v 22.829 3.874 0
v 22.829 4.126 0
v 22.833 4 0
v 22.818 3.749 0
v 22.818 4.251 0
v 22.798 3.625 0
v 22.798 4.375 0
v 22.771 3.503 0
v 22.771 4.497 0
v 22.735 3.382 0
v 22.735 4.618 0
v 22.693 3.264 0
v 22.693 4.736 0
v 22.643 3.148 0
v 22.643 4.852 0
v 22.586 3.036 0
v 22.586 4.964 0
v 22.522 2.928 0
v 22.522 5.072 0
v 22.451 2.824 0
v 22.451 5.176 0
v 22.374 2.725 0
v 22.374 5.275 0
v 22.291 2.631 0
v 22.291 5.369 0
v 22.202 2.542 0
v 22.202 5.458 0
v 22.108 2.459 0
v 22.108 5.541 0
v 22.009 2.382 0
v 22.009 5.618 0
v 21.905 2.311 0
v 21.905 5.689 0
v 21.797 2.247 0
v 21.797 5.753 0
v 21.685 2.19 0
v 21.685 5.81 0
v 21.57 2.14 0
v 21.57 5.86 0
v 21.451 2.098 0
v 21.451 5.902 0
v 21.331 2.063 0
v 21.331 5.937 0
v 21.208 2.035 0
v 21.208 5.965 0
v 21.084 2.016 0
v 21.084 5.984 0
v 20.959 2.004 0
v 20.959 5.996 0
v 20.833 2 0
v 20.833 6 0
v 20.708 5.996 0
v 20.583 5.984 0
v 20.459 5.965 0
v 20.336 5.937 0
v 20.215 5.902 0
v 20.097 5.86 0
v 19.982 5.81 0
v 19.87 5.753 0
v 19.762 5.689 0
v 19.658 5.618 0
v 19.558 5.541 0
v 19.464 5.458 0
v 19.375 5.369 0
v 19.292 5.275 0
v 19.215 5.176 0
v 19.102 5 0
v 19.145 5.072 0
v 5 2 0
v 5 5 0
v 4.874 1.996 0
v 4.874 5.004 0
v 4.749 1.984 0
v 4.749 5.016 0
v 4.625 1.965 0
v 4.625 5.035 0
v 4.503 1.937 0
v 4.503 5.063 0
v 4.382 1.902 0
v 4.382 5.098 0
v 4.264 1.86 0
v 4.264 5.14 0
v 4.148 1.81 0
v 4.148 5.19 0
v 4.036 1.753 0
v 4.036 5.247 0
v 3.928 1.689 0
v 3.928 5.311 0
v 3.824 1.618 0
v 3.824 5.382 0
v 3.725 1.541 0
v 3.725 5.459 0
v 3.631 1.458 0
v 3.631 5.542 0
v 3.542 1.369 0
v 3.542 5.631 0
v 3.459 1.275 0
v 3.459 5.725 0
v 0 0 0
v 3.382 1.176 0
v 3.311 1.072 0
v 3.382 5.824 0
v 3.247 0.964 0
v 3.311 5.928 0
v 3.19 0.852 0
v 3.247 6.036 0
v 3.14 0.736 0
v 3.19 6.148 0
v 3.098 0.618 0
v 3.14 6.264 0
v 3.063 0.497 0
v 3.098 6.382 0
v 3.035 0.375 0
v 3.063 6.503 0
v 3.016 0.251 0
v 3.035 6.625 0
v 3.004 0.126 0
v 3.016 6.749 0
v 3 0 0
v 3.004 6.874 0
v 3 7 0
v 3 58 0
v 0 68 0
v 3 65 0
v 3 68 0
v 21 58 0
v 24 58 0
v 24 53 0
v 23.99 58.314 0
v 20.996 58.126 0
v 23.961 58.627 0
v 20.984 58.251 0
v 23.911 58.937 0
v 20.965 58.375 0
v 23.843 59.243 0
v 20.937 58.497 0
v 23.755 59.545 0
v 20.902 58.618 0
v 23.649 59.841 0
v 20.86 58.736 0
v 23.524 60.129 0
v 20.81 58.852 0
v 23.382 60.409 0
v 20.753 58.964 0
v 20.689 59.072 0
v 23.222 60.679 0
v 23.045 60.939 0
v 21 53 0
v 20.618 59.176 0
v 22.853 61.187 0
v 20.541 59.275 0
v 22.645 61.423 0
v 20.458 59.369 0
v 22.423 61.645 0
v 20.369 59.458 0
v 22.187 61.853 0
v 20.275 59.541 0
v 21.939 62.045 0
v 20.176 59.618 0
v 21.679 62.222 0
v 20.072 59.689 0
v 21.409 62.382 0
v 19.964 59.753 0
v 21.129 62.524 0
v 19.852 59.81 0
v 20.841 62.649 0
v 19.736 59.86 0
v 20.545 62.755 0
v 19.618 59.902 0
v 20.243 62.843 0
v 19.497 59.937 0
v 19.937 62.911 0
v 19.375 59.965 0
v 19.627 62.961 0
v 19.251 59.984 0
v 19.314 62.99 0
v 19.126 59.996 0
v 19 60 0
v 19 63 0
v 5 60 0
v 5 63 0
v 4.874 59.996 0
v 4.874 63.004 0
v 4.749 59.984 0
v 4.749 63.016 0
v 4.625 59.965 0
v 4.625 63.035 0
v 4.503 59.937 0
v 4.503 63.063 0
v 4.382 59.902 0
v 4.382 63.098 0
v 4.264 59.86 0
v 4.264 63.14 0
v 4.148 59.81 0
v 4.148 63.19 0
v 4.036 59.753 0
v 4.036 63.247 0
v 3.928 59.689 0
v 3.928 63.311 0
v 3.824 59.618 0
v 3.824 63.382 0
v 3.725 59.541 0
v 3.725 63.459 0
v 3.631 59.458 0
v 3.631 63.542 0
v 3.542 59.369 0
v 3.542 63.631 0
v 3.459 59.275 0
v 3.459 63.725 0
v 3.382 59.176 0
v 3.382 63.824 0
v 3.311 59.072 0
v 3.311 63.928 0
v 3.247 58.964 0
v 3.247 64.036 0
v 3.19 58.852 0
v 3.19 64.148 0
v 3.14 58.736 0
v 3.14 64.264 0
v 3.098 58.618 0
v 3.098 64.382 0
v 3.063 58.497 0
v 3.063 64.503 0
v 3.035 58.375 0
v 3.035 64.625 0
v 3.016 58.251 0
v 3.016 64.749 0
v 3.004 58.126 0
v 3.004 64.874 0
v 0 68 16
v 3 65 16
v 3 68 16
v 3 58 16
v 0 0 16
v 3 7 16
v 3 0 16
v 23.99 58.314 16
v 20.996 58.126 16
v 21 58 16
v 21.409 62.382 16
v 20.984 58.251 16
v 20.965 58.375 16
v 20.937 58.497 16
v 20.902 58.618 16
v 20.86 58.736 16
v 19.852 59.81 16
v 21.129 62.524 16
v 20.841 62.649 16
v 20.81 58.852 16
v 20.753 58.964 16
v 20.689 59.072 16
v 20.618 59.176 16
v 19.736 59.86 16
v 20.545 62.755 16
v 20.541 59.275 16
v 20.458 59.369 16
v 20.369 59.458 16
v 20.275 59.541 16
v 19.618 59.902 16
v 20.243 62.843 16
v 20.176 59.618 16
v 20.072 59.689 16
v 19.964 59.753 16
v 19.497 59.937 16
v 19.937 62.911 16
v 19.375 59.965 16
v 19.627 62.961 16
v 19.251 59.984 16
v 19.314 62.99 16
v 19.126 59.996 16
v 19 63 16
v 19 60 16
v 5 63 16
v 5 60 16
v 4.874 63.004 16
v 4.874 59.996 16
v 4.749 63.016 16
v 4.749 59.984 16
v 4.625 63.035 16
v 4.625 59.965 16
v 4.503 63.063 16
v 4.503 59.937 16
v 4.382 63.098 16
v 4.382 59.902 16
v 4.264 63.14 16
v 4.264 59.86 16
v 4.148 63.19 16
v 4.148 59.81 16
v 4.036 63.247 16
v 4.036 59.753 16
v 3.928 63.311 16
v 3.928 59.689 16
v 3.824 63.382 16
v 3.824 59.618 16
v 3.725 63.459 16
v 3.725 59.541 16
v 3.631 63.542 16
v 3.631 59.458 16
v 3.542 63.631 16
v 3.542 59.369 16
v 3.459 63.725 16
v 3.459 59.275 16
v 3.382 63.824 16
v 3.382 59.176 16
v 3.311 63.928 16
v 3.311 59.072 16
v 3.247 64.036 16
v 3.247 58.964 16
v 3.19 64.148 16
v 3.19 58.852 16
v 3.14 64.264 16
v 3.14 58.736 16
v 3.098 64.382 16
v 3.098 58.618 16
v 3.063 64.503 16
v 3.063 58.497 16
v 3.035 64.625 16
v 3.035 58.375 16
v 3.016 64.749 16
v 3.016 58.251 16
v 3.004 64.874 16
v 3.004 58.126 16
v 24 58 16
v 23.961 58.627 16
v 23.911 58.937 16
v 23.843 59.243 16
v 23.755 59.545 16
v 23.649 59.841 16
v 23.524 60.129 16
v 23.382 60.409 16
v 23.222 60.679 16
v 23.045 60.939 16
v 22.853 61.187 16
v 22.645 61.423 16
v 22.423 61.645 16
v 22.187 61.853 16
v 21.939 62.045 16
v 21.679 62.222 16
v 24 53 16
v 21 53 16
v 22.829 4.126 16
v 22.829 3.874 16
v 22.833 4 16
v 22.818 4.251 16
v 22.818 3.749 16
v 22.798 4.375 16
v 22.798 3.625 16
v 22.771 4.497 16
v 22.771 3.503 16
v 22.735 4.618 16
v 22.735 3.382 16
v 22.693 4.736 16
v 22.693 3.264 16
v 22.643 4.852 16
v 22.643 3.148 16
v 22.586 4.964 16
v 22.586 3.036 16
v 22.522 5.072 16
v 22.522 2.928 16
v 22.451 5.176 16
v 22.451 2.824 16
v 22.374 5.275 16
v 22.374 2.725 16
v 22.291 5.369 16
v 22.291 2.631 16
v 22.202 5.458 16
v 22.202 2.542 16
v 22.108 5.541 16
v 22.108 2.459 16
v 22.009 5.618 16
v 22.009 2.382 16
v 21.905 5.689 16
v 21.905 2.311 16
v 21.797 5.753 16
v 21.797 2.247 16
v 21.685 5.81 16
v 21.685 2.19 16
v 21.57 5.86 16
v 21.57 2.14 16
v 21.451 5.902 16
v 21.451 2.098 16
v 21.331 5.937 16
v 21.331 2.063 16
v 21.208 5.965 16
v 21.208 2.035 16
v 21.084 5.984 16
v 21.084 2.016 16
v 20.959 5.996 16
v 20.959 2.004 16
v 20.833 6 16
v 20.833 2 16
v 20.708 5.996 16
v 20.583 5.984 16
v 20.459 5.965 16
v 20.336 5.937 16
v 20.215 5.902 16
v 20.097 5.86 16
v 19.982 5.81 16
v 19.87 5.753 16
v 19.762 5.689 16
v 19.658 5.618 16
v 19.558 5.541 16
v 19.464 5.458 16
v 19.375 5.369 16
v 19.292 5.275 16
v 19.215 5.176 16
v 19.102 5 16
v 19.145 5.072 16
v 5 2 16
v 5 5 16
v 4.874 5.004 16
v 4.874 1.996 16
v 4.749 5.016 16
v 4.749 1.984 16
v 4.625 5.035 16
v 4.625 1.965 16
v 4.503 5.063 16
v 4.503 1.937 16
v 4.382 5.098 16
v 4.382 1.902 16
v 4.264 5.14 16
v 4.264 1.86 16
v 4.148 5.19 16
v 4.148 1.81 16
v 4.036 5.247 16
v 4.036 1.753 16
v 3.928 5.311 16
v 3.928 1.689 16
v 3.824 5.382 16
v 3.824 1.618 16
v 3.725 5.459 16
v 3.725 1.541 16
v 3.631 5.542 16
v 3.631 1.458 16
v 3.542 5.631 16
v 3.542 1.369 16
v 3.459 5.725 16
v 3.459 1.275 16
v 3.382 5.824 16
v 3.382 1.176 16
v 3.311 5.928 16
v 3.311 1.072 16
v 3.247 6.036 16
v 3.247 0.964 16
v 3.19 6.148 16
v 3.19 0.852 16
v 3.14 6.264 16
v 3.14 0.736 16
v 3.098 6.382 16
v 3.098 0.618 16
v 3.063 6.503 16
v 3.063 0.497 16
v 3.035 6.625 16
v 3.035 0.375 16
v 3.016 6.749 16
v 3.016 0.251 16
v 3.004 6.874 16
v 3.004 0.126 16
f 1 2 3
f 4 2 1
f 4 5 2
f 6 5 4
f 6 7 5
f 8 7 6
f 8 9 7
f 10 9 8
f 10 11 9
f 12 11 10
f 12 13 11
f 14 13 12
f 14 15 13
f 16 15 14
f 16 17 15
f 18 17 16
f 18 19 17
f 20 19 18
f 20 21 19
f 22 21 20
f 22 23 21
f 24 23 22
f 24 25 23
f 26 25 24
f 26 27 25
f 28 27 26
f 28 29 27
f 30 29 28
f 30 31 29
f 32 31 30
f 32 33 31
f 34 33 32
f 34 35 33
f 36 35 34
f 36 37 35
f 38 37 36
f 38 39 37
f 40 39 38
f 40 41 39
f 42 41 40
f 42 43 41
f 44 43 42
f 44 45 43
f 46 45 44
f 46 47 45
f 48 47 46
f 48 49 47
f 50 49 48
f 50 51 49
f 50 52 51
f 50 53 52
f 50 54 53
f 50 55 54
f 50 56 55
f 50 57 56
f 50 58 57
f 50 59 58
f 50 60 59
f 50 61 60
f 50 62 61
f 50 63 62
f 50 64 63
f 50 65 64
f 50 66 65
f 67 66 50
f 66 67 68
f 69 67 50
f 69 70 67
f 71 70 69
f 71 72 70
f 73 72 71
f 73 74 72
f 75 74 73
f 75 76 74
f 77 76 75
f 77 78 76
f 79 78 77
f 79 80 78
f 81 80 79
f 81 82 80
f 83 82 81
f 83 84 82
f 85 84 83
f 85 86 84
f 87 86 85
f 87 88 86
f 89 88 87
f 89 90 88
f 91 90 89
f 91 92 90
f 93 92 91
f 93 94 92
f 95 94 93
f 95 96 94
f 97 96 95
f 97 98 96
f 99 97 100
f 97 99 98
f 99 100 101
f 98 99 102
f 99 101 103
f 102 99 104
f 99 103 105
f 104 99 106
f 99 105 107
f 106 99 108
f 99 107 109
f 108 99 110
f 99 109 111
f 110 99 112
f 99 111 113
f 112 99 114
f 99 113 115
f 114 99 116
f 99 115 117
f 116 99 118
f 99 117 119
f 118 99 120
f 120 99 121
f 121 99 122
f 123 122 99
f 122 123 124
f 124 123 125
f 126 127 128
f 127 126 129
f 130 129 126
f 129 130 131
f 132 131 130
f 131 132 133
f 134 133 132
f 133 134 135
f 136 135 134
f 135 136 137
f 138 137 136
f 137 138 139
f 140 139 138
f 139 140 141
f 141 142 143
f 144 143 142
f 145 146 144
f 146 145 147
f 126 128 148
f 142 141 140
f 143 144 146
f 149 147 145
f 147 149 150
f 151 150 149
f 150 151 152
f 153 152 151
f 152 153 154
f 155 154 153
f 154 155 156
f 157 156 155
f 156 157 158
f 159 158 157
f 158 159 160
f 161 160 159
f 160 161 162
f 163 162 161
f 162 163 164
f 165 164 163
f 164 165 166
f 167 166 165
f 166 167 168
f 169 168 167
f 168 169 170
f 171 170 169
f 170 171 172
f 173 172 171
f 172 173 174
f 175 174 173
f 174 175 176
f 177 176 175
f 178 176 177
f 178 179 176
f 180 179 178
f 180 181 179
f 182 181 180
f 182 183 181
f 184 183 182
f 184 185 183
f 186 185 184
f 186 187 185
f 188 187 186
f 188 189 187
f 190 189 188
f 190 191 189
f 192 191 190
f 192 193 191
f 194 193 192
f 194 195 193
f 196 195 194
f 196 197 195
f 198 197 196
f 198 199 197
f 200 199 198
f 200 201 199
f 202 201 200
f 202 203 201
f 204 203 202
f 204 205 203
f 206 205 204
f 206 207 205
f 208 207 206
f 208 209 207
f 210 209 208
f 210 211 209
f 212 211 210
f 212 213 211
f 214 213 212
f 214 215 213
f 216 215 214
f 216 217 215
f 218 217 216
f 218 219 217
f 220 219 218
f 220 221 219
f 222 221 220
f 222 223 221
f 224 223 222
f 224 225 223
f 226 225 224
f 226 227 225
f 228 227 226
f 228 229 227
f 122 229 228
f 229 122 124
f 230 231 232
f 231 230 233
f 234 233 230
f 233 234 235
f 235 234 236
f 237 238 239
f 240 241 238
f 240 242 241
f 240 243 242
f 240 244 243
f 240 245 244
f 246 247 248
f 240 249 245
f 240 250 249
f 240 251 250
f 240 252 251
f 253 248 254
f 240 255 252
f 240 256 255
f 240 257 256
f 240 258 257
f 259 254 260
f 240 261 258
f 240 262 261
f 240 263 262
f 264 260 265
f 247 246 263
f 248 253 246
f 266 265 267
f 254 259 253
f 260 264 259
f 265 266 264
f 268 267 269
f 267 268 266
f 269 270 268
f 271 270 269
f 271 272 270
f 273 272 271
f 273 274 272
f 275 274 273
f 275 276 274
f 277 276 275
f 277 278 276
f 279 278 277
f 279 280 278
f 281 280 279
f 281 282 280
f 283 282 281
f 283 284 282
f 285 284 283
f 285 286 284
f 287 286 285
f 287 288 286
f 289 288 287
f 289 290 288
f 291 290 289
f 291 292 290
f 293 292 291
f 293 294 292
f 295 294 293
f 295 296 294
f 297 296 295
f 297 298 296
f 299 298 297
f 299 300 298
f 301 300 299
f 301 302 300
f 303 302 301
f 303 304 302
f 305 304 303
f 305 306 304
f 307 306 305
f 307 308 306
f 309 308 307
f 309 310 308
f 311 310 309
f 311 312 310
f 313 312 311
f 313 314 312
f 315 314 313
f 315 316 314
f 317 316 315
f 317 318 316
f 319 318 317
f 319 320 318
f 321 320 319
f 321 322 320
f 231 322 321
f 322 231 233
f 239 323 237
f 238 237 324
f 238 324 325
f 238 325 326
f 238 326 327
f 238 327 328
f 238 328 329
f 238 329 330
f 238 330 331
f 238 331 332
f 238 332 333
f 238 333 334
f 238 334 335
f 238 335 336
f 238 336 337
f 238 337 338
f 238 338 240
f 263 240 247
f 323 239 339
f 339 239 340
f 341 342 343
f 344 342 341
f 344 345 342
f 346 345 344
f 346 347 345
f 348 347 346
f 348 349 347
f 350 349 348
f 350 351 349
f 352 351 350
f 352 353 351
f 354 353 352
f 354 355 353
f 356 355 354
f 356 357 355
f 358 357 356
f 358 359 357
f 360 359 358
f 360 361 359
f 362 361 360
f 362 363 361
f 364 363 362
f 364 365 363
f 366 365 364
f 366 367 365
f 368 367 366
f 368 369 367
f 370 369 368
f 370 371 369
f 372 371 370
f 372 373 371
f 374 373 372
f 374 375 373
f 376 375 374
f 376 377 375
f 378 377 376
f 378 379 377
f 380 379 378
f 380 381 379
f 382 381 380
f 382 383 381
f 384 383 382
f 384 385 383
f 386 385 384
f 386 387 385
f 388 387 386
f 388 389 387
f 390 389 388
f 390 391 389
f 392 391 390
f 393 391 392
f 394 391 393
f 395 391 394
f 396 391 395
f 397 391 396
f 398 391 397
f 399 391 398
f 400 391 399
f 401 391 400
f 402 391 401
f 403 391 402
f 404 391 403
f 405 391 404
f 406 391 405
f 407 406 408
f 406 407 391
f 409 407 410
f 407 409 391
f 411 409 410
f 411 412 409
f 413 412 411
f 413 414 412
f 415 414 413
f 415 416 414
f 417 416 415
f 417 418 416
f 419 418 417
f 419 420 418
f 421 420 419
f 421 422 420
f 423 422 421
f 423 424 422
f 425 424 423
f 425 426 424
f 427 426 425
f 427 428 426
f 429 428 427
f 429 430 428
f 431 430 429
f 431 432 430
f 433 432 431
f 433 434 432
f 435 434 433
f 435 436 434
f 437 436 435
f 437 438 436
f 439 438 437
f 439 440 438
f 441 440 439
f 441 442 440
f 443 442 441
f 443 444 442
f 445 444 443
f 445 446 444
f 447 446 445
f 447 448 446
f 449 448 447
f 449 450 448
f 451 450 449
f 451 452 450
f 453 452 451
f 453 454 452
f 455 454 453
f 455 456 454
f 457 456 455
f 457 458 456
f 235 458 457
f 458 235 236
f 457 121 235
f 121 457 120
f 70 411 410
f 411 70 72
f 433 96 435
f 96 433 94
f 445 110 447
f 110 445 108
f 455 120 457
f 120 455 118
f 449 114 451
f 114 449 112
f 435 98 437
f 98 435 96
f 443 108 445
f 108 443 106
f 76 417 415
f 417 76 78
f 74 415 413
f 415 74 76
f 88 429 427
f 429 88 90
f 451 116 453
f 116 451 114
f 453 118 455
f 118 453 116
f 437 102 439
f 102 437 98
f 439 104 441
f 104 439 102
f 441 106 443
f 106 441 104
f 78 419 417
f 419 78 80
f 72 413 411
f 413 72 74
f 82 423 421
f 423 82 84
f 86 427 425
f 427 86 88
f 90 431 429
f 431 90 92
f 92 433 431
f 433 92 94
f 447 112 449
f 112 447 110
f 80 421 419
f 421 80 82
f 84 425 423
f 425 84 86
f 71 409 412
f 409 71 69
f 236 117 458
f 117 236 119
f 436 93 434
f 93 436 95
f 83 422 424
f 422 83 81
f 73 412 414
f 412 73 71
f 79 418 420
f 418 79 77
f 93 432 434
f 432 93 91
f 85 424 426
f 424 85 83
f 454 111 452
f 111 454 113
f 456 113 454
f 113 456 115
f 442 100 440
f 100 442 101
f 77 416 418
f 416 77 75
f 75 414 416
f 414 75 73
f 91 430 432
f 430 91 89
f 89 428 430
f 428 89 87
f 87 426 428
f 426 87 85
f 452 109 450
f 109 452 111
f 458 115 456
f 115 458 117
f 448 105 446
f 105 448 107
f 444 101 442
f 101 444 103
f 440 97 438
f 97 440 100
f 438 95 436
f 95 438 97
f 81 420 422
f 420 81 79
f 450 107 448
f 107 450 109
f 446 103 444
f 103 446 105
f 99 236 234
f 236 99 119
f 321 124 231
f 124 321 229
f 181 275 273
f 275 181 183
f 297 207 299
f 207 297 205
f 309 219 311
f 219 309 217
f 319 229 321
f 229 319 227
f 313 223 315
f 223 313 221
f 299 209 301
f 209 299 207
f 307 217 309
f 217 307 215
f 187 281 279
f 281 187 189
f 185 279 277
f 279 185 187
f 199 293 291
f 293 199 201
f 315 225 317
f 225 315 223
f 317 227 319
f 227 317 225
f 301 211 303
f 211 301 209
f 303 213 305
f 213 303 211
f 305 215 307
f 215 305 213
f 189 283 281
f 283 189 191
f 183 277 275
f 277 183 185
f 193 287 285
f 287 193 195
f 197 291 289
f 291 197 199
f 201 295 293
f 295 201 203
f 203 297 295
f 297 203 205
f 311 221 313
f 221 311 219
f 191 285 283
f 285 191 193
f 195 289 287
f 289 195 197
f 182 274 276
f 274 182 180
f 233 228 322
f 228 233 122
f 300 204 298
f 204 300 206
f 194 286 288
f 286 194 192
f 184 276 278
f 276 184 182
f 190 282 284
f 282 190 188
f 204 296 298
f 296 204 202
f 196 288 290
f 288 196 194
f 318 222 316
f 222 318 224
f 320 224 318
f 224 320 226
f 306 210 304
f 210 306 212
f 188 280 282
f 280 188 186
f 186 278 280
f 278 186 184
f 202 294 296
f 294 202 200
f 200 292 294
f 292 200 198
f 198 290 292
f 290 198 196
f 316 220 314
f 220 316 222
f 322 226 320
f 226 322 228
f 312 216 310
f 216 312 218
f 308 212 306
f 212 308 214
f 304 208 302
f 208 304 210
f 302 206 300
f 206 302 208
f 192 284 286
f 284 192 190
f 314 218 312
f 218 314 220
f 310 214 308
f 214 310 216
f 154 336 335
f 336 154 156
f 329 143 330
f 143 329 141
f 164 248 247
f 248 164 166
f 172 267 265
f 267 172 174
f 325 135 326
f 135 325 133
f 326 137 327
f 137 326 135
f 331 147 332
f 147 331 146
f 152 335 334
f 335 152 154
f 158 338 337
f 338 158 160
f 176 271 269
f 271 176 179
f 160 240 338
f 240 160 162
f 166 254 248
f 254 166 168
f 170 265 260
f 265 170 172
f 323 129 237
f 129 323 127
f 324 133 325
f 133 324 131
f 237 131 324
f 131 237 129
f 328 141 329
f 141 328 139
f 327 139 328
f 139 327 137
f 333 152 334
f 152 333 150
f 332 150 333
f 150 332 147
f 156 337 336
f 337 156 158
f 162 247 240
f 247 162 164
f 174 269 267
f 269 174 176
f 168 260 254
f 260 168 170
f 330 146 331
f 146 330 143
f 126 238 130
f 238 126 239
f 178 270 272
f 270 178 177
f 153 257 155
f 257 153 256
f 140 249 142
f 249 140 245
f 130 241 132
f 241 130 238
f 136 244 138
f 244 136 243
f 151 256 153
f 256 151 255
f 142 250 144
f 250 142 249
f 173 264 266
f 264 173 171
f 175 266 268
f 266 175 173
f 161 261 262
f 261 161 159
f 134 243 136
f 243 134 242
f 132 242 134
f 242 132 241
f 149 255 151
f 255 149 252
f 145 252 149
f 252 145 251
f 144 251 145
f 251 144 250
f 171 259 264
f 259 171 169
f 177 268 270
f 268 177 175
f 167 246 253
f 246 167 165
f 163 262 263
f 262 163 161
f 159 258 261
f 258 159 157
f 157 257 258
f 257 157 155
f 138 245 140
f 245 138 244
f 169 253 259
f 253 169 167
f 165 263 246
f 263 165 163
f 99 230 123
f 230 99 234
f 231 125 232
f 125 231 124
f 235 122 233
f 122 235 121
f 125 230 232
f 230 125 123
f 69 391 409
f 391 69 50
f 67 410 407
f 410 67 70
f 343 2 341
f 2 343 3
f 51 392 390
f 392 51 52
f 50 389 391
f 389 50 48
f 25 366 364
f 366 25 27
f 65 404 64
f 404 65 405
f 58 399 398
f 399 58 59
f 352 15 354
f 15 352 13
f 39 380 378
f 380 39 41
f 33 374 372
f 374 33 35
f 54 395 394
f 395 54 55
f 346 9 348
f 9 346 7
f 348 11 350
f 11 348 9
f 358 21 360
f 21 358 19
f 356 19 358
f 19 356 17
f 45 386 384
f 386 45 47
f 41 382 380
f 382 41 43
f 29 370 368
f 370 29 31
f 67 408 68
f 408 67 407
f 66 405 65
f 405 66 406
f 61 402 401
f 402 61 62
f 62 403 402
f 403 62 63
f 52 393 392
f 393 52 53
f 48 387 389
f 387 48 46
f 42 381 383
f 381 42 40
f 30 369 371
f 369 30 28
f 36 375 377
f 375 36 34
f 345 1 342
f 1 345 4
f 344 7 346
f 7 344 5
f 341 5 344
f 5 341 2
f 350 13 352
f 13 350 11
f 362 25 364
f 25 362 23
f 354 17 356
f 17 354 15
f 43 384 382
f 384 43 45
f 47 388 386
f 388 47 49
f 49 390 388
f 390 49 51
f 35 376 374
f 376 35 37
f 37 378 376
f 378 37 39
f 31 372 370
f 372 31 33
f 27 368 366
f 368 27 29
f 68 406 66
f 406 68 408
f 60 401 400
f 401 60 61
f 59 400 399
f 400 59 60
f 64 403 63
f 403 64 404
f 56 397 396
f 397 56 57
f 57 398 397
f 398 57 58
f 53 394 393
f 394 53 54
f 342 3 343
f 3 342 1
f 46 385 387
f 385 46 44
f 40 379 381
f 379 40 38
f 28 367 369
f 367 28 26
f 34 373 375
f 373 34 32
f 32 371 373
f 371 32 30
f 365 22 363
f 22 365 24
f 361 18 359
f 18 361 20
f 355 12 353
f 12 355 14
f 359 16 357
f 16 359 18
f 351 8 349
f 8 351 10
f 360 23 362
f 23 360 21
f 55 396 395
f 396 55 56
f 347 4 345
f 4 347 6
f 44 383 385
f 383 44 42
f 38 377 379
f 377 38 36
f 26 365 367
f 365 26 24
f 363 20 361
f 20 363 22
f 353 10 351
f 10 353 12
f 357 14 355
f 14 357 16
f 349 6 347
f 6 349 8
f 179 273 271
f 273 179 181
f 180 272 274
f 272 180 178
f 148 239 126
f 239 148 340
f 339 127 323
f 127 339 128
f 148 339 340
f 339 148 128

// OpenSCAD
$fn = 100;

/*
 *  size_width      = how tall the print is
 *  wall_thickness  = the wall thickness of the print
 *
 *  ║       ─────────────
 *  ╠═════╗ ─────────   │
 *  ║     ║         │   │
 *  ║     ║ ─────   │   │
 *  ║           │   │   │
 *  ║           │   │   │
 *  ╠═══■   ─────────────
 *
 *  │   │ │     │   │   └─ clip_length + (2 * clip_pad)
 *  │   │ │     │   └─ clip_length
 *  │   │ │     └─ clip_hook
 *  │   │ │
 *  │   │ └──── clip_width
 *  │   └────── clip_width / clip_ratio
 *
 *  Shims are curved using r_inner as the radius
 *  ╗ module - corner_shim
 *
 *  ╠ module - corner_joint
 */

wall_thickness = 3;

//*
// wall cabel trunking...
r_inner = 2;
clip_ratio = 1.2; // 2
clip_pad = 5;
clip_length = 58; //30
clip_width = 19; // 15
clip_hook = 5; //clip_width / clip_ratio;
size_width = 16;
// */

/*
// headphone...
r_inner = 2;
clip_ratio = 3;
clip_pad = 10;
clip_length = 30;
clip_width = 30;
clip_hook = 10;
size_width = 40;
// */


offset_step = size_width / 2;
r_outer = r_inner + wall_thickness;

// modules to create joints...
module corner_shim(r_outer, w_thickness, extrude){
    
    r_inner = r_outer - w_thickness;
    o_step = extrude/2;
    
    translate([0, 0, o_step]) {
        intersection(){
            difference(){
                cylinder(r=r_outer, h=extrude, center=true);
                cylinder(r=r_inner, h=extrude+o_step, center=true);    
            };
            translate([r_outer/2, r_outer/2,0]){
                cube([r_outer, r_outer, extrude], center=true);
            }
        }
    }
};

module corner_joint(r_outer, w_thickness, extrude){
    translate([r_outer, r_outer + r_inner,0]){
    rotate([0,0,180]){
        corner_shim(r_outer, w_thickness, extrude);
        translate([0, 2*r_outer - w_thickness, 0]){
            rotate([0,0,-90]){
                corner_shim(r_outer, w_thickness, extrude);
        
                };
            };
        };            
    };    
};

// joints placement
corner_joint(r_outer, wall_thickness, size_width);
translate([0, clip_length, 0]){
    corner_joint(r_outer, wall_thickness, size_width);
};

// wall section
cube([wall_thickness, clip_length + (2 * clip_pad), size_width]);
// top clip
translate([0, r_inner, 0]){
    cube([r_outer + clip_width/clip_ratio, wall_thickness, size_width]);
};
translate([r_outer + clip_width/clip_ratio, r_inner*2, 0]){
    cylinder(r=r_inner, h=size_width);
};

// bottom holder
translate([0, clip_length + r_inner, 0]){
    cube([clip_width, wall_thickness, size_width]);
};
translate([clip_width + r_inner,clip_length - clip_hook,0]){
    cube([wall_thickness, clip_hook, size_width]);
};
translate([clip_width, clip_length, 0]){
    //rotate([0,0,180]){
        corner_shim(r_outer, wall_thickness, size_width);
    //};    
};
